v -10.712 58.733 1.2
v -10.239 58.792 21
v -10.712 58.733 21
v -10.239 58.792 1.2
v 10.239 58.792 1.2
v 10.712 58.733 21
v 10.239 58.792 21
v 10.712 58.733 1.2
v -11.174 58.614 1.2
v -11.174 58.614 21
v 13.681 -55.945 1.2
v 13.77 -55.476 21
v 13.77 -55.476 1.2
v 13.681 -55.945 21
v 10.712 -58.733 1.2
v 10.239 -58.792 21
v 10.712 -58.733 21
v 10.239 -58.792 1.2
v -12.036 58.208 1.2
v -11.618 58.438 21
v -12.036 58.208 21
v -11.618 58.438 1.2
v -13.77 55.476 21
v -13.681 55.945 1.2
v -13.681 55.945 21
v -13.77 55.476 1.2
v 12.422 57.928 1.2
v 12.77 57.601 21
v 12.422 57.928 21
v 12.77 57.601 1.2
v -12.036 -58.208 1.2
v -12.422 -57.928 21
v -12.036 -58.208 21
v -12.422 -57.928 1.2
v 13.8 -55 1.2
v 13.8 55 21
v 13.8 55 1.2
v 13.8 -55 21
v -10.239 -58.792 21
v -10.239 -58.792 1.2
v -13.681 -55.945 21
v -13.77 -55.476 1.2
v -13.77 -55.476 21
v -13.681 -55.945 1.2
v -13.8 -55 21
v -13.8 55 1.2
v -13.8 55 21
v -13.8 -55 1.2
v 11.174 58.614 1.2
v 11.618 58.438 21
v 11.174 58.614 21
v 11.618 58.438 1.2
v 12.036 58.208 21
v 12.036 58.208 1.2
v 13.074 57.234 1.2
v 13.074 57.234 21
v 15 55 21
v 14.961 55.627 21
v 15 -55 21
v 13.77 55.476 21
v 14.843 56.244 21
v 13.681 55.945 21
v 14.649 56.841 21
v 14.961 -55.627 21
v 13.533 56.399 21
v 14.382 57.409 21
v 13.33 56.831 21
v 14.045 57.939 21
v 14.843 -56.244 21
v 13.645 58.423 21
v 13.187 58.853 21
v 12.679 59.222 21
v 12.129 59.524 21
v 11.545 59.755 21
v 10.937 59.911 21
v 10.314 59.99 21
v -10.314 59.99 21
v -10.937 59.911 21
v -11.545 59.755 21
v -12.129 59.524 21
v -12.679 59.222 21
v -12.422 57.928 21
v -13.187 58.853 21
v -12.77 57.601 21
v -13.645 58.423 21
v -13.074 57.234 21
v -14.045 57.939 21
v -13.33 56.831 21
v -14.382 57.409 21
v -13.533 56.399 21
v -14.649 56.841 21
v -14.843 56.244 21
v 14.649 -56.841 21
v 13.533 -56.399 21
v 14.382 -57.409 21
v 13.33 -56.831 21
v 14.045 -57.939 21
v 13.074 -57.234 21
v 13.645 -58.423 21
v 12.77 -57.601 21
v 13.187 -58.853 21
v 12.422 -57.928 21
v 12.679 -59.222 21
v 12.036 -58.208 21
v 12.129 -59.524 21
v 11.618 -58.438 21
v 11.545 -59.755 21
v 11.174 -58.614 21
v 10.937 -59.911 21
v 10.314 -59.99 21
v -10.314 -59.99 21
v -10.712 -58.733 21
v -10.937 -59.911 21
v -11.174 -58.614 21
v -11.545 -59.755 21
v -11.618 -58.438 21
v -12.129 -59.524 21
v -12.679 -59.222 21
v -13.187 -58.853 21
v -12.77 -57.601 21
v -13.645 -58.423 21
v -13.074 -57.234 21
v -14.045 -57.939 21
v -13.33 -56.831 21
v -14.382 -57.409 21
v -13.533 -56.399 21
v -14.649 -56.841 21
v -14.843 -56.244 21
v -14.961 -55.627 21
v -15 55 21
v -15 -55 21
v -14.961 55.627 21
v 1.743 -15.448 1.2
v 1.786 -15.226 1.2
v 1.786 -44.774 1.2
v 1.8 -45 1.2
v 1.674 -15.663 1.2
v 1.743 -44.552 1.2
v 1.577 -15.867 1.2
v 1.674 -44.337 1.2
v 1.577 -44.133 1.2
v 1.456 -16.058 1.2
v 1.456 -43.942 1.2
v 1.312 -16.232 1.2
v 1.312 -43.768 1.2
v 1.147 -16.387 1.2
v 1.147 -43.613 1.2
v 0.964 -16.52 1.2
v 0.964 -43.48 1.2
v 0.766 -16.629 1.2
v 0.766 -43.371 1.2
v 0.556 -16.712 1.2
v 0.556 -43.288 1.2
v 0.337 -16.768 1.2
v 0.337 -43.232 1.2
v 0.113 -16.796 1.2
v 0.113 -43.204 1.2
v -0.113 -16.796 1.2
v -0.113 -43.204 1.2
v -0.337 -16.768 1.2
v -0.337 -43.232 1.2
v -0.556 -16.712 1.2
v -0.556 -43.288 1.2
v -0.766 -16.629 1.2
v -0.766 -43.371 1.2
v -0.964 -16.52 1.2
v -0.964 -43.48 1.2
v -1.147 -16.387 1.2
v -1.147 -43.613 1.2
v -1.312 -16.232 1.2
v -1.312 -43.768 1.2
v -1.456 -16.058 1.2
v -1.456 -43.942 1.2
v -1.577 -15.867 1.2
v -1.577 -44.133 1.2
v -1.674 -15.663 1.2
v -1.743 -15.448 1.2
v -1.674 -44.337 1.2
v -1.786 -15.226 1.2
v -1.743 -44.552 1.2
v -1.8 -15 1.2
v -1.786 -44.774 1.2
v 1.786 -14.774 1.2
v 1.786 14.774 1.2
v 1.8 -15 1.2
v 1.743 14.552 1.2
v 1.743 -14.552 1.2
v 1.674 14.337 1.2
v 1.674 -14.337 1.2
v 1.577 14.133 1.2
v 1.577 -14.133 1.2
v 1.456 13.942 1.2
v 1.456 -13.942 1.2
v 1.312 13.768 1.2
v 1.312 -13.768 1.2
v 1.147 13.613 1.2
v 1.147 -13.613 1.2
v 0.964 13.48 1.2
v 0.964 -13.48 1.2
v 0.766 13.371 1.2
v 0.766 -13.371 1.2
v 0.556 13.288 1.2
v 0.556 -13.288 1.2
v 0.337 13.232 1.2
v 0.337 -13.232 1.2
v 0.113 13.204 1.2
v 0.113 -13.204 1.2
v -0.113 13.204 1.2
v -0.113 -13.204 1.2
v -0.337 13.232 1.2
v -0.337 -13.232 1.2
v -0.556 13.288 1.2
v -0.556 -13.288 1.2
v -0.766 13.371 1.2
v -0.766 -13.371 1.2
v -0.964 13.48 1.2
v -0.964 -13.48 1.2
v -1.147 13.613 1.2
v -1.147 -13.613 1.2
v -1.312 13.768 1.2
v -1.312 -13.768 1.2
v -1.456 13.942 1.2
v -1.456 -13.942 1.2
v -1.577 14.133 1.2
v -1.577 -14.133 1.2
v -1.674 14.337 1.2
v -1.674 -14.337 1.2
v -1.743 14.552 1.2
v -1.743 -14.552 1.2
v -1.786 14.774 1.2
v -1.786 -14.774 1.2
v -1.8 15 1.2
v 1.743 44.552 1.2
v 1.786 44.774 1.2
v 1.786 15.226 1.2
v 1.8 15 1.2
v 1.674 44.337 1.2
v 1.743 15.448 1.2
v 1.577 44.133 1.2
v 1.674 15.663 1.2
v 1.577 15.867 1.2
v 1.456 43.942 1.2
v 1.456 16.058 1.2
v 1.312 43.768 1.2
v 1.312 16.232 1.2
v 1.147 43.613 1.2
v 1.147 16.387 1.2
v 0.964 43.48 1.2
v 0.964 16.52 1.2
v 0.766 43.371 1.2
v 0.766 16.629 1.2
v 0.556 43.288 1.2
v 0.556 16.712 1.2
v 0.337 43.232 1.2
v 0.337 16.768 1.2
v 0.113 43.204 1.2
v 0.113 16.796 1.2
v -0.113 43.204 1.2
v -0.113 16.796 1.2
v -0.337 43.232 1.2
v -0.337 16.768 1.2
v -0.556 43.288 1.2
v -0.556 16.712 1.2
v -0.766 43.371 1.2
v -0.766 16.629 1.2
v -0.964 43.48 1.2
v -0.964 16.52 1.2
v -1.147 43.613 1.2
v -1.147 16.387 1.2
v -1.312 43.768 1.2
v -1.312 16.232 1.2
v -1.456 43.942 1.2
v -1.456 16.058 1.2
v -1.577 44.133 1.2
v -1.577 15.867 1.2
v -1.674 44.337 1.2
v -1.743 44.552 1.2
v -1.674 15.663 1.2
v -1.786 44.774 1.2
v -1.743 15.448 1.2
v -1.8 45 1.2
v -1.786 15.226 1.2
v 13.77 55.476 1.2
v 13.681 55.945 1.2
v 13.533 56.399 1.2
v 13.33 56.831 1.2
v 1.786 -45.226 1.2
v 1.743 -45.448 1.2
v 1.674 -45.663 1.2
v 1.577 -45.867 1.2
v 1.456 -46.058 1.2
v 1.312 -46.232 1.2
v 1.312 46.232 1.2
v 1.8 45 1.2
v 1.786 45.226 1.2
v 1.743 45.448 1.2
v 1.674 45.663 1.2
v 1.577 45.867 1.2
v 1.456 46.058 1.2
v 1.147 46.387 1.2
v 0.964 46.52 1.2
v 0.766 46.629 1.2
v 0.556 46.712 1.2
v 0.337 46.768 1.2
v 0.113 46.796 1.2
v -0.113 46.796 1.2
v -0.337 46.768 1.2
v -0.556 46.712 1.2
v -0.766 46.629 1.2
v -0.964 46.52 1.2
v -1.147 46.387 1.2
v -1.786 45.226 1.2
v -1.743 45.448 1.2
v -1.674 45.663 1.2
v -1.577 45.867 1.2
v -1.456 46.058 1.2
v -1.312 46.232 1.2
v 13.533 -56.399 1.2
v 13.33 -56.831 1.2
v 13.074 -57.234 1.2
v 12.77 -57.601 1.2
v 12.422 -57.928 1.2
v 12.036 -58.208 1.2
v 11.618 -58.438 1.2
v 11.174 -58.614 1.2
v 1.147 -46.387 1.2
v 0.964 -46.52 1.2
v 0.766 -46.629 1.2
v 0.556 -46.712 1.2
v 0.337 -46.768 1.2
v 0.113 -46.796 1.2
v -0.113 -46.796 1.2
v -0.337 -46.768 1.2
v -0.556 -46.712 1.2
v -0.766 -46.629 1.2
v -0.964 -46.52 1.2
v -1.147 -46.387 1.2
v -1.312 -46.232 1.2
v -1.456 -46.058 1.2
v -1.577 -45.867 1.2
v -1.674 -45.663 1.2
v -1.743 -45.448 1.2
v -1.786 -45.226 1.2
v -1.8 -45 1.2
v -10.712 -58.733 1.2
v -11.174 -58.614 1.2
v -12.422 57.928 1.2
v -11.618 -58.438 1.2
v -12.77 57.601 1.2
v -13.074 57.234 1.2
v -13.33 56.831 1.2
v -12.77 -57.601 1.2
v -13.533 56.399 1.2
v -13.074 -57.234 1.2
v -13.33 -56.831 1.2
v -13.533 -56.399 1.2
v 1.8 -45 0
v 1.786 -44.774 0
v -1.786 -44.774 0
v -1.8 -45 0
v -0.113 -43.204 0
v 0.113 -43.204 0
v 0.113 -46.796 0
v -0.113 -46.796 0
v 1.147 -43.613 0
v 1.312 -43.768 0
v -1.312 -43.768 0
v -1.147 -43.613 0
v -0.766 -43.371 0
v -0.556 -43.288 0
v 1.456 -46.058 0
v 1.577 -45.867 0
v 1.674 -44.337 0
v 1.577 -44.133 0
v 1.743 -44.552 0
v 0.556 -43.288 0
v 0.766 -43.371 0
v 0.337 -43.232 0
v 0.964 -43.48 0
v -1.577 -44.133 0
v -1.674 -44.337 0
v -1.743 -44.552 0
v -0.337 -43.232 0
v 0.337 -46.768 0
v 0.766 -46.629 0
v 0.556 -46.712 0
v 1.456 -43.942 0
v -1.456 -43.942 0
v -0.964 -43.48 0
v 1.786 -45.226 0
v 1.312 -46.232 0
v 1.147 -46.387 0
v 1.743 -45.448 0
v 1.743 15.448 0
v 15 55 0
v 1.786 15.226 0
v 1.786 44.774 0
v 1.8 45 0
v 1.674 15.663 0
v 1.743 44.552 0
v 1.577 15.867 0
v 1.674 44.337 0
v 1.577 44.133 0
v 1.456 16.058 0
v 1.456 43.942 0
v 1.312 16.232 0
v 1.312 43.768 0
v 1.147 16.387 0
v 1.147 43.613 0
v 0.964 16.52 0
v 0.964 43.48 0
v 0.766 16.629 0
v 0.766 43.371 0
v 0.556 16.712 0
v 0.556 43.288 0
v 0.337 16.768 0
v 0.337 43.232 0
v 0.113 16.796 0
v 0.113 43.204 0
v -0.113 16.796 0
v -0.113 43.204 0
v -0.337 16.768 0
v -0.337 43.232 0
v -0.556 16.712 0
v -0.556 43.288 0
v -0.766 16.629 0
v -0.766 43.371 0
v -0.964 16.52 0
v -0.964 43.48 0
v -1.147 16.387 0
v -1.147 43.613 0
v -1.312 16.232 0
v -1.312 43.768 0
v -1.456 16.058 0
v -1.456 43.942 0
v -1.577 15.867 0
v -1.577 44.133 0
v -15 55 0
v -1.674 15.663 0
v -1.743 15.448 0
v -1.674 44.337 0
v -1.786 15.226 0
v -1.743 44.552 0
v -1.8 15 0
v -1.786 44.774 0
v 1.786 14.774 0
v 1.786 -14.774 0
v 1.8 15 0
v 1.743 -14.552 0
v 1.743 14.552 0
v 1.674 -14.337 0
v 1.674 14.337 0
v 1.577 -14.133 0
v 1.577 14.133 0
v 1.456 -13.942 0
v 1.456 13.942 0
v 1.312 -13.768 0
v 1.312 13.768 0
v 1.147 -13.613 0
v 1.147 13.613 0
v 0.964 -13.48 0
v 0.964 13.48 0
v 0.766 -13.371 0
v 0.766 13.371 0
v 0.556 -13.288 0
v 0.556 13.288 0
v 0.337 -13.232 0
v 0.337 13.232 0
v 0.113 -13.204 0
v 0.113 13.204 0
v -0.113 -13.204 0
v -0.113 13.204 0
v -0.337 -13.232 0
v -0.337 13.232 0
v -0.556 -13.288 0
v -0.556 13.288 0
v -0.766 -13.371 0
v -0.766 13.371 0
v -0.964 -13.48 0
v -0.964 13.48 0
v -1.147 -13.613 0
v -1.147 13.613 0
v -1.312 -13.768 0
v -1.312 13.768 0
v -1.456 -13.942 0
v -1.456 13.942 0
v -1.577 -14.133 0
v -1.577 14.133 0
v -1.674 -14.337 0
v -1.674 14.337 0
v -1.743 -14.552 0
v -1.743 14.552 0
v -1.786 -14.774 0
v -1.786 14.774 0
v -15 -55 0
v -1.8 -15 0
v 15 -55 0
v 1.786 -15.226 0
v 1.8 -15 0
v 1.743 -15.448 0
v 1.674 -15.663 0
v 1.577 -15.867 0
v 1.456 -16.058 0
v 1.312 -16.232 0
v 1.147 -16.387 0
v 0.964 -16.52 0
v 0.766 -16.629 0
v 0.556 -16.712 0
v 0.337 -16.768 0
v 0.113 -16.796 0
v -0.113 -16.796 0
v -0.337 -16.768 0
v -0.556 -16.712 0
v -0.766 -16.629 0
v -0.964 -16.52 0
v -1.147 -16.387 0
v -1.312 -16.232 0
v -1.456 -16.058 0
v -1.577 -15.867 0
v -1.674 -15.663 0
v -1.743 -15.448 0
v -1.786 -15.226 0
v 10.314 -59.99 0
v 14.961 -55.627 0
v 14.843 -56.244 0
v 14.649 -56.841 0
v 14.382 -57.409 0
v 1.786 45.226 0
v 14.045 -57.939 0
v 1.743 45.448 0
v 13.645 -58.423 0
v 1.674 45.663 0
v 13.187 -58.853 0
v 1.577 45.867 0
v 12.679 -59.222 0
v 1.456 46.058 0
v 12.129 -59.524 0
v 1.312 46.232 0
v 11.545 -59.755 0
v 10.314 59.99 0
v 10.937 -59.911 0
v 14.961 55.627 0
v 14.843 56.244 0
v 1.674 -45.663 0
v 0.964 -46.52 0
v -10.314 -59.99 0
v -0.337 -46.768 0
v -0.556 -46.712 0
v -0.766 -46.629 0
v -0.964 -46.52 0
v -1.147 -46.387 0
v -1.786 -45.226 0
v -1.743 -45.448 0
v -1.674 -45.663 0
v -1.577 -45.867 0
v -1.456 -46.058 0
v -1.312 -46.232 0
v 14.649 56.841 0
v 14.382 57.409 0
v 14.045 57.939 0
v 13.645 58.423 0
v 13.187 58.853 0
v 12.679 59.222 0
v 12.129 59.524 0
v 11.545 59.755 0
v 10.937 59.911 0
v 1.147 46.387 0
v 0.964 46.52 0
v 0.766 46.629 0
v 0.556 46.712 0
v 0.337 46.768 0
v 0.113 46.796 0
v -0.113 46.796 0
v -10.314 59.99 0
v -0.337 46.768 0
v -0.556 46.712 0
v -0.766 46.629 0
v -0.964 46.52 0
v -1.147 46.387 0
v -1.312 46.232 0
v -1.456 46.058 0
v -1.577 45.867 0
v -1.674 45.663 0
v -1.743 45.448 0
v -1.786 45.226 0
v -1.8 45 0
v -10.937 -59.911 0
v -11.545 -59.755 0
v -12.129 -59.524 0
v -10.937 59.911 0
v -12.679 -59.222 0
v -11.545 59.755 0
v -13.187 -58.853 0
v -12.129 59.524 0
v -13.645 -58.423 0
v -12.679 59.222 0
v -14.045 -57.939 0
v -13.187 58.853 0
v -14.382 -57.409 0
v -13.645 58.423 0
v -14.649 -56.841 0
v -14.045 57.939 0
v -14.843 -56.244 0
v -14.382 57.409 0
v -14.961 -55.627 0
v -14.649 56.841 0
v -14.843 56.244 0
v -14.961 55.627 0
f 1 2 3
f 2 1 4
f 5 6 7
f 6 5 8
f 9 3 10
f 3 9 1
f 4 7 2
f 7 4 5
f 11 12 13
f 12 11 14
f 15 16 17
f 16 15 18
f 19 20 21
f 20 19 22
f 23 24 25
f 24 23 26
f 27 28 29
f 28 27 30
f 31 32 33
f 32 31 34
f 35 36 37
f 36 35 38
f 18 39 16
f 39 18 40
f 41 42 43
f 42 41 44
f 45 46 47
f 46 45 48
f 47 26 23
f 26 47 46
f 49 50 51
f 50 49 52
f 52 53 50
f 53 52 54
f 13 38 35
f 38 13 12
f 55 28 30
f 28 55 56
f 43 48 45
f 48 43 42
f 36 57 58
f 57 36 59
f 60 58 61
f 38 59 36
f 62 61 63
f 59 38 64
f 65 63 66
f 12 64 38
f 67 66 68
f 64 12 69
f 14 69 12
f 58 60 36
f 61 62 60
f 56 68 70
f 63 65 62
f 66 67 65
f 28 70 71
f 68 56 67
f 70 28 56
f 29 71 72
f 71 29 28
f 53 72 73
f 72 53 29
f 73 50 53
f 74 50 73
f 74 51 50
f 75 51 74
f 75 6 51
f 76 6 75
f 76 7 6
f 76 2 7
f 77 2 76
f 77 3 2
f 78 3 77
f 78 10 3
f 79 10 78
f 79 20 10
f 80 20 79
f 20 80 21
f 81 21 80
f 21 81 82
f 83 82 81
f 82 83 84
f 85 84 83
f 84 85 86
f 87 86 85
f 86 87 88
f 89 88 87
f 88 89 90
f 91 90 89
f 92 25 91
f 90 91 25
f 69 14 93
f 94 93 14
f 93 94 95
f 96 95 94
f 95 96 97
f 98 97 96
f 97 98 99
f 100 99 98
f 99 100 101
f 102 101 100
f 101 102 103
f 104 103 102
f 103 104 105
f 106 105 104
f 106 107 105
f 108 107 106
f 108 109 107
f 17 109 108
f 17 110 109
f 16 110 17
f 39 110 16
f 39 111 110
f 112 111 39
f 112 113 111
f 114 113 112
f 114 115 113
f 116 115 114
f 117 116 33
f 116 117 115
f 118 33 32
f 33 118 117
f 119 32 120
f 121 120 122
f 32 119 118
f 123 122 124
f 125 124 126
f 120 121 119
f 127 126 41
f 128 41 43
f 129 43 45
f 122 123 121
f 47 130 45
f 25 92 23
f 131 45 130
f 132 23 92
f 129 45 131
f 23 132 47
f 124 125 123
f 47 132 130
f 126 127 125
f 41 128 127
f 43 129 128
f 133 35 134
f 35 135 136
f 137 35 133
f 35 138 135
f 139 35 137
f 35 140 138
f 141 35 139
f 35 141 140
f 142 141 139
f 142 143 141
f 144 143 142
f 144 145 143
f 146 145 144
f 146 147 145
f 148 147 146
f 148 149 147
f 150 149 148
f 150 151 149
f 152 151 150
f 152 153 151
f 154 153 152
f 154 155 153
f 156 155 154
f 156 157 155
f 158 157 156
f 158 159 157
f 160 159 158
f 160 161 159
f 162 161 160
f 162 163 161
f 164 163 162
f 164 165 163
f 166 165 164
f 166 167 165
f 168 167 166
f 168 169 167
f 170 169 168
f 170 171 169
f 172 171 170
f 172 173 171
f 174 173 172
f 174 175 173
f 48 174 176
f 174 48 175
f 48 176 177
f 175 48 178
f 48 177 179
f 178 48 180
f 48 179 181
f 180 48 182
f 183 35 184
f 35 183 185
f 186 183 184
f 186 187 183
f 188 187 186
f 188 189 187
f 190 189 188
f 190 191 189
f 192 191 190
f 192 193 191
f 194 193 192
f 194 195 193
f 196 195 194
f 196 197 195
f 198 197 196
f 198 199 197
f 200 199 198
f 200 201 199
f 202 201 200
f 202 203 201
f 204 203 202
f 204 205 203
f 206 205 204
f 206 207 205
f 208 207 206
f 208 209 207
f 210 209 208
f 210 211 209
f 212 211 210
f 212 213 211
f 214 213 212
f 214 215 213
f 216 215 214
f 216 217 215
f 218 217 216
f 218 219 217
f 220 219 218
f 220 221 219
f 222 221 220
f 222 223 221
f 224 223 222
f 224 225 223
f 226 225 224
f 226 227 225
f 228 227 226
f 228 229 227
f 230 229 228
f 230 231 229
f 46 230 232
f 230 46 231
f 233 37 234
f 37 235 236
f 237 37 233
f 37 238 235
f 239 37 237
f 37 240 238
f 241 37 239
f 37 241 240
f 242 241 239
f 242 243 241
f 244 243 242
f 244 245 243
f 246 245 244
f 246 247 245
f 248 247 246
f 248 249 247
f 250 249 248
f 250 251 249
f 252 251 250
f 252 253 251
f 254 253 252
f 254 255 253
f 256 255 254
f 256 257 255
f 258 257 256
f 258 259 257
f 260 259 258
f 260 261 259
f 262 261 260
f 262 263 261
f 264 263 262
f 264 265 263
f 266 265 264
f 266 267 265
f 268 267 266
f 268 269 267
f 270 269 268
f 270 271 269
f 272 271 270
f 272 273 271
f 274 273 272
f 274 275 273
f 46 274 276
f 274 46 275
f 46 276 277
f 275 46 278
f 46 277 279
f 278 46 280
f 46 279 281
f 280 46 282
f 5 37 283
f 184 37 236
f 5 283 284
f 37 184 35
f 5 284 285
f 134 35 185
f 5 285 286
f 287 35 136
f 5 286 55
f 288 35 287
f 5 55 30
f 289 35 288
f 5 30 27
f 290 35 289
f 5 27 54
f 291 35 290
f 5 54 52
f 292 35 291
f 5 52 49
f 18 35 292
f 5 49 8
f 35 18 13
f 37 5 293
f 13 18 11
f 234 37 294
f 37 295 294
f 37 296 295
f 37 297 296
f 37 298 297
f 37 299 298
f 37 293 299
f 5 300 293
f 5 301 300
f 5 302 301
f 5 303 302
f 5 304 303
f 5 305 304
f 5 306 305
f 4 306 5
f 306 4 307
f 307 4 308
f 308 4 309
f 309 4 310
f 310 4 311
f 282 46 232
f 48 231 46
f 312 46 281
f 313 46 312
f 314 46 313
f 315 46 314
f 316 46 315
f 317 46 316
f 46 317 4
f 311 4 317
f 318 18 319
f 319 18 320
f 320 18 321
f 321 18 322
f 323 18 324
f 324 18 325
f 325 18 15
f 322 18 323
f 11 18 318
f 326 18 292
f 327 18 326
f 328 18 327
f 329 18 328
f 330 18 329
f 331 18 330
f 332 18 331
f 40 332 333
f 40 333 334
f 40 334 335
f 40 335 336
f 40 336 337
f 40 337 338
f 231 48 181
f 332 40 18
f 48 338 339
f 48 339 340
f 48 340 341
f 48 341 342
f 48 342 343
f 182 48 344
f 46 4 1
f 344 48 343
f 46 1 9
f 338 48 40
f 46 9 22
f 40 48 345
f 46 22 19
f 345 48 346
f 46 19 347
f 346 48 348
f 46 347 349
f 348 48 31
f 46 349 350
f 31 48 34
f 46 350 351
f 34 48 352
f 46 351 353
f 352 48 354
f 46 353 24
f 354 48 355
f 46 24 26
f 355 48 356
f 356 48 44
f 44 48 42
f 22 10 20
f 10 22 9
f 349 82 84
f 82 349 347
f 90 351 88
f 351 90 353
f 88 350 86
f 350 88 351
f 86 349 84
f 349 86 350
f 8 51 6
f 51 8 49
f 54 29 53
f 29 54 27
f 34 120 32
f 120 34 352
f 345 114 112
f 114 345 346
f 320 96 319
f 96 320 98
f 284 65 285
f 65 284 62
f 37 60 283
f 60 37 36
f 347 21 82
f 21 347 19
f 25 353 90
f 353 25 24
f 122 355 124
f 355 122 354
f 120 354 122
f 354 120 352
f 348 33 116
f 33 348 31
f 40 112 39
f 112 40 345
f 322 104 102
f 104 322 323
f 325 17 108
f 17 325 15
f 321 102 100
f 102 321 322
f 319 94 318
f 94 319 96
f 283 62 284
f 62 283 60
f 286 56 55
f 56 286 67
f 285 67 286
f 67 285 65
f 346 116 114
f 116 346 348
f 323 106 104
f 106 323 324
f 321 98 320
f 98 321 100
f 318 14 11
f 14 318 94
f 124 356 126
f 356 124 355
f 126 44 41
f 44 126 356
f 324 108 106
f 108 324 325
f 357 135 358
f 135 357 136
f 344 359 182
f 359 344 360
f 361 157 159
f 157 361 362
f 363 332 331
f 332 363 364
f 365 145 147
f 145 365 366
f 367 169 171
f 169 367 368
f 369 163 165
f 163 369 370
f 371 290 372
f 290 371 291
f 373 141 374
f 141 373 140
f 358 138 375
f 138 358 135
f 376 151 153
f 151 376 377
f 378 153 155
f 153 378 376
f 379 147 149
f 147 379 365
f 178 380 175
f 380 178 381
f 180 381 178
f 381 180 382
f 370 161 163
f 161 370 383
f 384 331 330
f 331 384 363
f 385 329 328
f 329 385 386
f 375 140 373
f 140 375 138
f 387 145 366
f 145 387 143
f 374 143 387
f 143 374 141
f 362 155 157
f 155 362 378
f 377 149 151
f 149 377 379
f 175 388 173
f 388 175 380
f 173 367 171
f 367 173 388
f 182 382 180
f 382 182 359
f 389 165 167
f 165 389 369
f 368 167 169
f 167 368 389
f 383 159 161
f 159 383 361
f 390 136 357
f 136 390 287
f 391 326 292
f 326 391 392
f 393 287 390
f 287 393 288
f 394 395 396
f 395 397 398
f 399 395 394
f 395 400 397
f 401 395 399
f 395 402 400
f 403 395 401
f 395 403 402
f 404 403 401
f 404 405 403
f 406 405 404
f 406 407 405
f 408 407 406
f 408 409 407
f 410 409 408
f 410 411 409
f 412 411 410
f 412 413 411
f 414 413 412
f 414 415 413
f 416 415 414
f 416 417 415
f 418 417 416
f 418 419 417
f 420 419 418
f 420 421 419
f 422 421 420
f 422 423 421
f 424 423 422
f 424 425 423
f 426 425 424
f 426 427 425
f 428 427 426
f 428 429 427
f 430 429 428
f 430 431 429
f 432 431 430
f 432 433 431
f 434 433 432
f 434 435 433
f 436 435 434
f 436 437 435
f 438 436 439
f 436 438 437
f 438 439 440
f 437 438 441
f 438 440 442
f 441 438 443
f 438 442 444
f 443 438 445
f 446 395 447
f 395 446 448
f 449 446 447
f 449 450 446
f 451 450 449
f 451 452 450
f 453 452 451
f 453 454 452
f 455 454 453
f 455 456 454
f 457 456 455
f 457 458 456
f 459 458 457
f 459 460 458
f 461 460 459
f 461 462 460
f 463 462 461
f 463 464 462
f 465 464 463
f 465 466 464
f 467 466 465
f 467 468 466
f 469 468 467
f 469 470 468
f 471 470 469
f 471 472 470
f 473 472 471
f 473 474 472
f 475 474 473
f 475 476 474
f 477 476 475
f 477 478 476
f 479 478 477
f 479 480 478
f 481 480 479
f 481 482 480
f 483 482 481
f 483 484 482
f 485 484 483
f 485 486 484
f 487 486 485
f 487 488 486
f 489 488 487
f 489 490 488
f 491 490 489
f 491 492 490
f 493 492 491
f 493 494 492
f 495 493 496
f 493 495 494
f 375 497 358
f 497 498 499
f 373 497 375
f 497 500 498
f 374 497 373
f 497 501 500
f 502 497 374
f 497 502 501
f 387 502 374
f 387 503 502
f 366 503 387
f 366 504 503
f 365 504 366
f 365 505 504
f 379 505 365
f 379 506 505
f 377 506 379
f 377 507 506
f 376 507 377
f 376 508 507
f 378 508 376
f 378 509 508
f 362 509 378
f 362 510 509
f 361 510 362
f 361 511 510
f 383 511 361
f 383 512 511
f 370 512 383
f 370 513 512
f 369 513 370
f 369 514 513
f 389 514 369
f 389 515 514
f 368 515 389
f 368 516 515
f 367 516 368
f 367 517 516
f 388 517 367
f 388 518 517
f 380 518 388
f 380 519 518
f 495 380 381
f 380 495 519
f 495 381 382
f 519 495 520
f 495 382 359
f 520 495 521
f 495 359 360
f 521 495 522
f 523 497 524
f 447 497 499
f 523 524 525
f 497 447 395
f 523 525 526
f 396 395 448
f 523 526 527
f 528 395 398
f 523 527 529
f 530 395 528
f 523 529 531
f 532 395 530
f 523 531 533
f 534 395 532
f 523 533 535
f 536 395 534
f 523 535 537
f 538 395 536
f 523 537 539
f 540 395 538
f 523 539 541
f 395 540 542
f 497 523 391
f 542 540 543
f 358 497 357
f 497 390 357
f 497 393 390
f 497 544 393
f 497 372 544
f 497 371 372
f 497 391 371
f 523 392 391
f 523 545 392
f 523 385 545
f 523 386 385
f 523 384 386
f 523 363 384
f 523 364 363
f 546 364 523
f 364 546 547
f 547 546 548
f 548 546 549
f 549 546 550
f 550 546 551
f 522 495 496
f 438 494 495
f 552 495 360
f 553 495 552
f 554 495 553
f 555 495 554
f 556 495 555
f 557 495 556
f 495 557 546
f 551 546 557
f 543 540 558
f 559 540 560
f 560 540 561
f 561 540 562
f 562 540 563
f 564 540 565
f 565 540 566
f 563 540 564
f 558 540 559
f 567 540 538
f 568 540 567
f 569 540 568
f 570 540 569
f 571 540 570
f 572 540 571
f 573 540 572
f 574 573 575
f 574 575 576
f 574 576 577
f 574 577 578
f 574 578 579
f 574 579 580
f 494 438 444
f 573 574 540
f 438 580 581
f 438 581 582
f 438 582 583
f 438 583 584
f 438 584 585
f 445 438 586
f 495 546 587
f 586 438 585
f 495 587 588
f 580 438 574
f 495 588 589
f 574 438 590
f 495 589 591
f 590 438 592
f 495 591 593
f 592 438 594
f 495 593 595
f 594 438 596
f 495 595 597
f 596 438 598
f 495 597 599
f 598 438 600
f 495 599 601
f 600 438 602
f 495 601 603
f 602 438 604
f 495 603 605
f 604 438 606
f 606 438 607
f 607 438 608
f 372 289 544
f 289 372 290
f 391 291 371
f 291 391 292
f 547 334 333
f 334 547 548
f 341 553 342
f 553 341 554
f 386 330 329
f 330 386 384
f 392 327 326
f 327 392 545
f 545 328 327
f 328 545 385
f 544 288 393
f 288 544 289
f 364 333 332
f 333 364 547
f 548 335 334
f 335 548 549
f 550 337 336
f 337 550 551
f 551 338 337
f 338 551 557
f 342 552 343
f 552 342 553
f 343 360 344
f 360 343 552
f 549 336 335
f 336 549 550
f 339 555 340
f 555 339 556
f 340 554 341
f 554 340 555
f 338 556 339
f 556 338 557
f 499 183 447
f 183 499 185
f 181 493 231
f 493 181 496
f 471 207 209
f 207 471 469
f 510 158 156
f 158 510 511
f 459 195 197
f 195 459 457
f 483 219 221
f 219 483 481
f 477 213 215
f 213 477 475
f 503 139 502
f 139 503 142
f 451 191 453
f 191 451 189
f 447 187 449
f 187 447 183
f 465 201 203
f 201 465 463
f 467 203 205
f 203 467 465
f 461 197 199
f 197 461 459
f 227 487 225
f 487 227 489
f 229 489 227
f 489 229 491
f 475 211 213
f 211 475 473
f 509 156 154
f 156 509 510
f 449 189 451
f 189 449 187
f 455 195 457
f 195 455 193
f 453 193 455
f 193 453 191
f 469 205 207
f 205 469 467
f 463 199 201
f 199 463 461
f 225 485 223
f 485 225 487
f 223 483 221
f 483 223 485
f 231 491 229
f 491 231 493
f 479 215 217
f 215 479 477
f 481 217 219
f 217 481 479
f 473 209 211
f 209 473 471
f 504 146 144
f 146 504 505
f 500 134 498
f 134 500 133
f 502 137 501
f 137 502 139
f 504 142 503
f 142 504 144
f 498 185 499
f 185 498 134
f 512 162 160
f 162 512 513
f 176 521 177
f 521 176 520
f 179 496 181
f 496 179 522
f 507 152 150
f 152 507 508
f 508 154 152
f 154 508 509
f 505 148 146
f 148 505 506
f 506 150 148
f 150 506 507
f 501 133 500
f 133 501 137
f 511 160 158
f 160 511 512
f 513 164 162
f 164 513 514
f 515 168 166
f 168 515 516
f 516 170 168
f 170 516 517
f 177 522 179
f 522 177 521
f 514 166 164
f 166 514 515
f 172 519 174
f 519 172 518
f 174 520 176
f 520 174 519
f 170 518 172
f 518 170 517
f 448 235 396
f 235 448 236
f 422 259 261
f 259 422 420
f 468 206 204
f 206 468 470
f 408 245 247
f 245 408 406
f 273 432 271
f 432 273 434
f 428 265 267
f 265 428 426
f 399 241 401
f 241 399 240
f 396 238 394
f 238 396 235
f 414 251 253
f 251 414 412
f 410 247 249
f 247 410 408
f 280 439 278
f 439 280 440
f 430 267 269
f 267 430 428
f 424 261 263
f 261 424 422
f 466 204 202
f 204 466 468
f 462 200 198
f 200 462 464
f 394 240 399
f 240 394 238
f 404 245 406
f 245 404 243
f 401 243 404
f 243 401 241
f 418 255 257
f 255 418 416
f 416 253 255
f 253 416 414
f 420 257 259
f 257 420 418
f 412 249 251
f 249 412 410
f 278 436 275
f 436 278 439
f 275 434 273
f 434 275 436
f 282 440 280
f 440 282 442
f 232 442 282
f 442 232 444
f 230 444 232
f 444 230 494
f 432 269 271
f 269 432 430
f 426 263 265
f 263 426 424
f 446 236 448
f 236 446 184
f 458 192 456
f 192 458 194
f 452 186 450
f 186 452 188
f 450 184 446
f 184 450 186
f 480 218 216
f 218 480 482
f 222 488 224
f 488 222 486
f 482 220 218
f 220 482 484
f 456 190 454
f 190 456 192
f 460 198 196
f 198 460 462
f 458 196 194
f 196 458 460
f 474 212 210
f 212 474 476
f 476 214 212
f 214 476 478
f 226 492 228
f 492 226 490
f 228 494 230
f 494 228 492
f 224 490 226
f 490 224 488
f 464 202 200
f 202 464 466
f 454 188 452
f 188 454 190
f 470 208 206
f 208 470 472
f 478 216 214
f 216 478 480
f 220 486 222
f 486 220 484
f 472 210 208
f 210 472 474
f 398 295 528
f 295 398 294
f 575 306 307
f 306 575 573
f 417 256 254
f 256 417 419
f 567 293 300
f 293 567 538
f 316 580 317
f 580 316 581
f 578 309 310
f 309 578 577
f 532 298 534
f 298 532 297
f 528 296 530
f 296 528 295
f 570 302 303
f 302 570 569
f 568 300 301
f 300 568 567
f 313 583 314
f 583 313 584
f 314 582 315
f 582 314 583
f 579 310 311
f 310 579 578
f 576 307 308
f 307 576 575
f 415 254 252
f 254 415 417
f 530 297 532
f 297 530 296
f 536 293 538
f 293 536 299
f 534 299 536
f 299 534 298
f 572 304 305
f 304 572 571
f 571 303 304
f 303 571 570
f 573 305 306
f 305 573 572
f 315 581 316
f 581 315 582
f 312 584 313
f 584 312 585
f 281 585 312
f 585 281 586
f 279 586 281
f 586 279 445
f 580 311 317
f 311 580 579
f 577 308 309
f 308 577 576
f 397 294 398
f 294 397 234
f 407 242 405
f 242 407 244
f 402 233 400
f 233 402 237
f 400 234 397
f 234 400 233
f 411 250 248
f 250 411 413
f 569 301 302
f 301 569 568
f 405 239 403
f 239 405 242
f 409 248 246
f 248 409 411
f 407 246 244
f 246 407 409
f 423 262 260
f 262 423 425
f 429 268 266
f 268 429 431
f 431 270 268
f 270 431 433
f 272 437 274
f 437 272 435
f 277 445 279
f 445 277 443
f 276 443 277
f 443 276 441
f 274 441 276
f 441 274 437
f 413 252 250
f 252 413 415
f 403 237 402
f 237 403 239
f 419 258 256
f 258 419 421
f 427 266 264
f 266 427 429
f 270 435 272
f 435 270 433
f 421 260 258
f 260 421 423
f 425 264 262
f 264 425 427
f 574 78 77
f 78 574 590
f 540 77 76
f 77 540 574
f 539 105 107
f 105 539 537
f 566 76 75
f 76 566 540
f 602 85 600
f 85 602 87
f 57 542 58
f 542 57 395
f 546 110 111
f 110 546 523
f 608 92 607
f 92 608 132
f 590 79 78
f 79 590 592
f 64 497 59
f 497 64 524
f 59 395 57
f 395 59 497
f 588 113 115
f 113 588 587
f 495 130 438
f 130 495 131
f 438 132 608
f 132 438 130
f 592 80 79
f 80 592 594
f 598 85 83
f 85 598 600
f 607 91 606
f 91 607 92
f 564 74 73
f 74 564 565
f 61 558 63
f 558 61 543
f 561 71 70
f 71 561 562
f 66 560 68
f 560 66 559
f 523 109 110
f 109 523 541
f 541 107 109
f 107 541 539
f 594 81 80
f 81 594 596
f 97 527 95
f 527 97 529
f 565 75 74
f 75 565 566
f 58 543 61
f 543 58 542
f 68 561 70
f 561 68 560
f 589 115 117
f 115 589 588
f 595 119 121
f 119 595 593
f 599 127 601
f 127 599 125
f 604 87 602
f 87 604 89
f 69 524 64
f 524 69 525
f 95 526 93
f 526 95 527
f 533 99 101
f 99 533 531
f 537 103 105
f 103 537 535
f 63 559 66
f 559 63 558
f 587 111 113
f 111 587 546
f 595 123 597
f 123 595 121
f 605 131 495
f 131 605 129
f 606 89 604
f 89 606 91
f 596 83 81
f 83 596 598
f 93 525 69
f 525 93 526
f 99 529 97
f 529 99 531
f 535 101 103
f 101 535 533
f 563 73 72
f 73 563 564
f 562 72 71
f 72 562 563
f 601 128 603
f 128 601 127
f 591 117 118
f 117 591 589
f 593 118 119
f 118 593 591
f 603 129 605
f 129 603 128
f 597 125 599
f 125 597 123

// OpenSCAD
$fn = 50;


difference() {
	union() {
		hull() {
			translate(v = [-10.0000000000, 55.0000000000, 0]) {
				cylinder(h = 21, r = 5);
			}
			translate(v = [10.0000000000, 55.0000000000, 0]) {
				cylinder(h = 21, r = 5);
			}
			translate(v = [-10.0000000000, -55.0000000000, 0]) {
				cylinder(h = 21, r = 5);
			}
			translate(v = [10.0000000000, -55.0000000000, 0]) {
				cylinder(h = 21, r = 5);
			}
		}
	}
	union() {
		translate(v = [0, 0, 1.2000000000]) {
			hull() {
				translate(v = [-10.0000000000, 55.0000000000, 0]) {
					cylinder(h = 19.8000000000, r = 3.8000000000);
				}
				translate(v = [10.0000000000, 55.0000000000, 0]) {
					cylinder(h = 19.8000000000, r = 3.8000000000);
				}
				translate(v = [-10.0000000000, -55.0000000000, 0]) {
					cylinder(h = 19.8000000000, r = 3.8000000000);
				}
				translate(v = [10.0000000000, -55.0000000000, 0]) {
					cylinder(h = 19.8000000000, r = 3.8000000000);
				}
			}
		}
		#translate(v = [0.0000000000, -45.0000000000, 0]) {
			cylinder(h = 1.2000000000, r = 1.8000000000);
		}
		#translate(v = [0.0000000000, -15.0000000000, 0]) {
			cylinder(h = 1.2000000000, r = 1.8000000000);
		}
		#translate(v = [0.0000000000, 15.0000000000, 0]) {
			cylinder(h = 1.2000000000, r = 1.8000000000);
		}
		#translate(v = [0.0000000000, 45.0000000000, 0]) {
			cylinder(h = 1.2000000000, r = 1.8000000000);
		}
	}
}
